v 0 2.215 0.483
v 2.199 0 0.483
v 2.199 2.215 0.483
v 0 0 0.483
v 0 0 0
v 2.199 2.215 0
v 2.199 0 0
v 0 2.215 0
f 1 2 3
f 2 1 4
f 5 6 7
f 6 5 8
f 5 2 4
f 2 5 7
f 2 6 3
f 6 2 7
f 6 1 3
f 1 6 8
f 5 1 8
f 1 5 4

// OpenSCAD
/* Warning, this is a very basic generator with a lot of approximation 
input data : [WLCSP, 3WB, 2.199x2.215x0.483mm, 27, , C, C04-21517C]
generated by com.zoubworld.electronics.cad.model3d.Basic
Date : Sun Feb 15 10:50:49 CET 2026
*/

//body
color("black")
translate([0,0,0])
cube([2.199,2.215,0.483], center=false);
